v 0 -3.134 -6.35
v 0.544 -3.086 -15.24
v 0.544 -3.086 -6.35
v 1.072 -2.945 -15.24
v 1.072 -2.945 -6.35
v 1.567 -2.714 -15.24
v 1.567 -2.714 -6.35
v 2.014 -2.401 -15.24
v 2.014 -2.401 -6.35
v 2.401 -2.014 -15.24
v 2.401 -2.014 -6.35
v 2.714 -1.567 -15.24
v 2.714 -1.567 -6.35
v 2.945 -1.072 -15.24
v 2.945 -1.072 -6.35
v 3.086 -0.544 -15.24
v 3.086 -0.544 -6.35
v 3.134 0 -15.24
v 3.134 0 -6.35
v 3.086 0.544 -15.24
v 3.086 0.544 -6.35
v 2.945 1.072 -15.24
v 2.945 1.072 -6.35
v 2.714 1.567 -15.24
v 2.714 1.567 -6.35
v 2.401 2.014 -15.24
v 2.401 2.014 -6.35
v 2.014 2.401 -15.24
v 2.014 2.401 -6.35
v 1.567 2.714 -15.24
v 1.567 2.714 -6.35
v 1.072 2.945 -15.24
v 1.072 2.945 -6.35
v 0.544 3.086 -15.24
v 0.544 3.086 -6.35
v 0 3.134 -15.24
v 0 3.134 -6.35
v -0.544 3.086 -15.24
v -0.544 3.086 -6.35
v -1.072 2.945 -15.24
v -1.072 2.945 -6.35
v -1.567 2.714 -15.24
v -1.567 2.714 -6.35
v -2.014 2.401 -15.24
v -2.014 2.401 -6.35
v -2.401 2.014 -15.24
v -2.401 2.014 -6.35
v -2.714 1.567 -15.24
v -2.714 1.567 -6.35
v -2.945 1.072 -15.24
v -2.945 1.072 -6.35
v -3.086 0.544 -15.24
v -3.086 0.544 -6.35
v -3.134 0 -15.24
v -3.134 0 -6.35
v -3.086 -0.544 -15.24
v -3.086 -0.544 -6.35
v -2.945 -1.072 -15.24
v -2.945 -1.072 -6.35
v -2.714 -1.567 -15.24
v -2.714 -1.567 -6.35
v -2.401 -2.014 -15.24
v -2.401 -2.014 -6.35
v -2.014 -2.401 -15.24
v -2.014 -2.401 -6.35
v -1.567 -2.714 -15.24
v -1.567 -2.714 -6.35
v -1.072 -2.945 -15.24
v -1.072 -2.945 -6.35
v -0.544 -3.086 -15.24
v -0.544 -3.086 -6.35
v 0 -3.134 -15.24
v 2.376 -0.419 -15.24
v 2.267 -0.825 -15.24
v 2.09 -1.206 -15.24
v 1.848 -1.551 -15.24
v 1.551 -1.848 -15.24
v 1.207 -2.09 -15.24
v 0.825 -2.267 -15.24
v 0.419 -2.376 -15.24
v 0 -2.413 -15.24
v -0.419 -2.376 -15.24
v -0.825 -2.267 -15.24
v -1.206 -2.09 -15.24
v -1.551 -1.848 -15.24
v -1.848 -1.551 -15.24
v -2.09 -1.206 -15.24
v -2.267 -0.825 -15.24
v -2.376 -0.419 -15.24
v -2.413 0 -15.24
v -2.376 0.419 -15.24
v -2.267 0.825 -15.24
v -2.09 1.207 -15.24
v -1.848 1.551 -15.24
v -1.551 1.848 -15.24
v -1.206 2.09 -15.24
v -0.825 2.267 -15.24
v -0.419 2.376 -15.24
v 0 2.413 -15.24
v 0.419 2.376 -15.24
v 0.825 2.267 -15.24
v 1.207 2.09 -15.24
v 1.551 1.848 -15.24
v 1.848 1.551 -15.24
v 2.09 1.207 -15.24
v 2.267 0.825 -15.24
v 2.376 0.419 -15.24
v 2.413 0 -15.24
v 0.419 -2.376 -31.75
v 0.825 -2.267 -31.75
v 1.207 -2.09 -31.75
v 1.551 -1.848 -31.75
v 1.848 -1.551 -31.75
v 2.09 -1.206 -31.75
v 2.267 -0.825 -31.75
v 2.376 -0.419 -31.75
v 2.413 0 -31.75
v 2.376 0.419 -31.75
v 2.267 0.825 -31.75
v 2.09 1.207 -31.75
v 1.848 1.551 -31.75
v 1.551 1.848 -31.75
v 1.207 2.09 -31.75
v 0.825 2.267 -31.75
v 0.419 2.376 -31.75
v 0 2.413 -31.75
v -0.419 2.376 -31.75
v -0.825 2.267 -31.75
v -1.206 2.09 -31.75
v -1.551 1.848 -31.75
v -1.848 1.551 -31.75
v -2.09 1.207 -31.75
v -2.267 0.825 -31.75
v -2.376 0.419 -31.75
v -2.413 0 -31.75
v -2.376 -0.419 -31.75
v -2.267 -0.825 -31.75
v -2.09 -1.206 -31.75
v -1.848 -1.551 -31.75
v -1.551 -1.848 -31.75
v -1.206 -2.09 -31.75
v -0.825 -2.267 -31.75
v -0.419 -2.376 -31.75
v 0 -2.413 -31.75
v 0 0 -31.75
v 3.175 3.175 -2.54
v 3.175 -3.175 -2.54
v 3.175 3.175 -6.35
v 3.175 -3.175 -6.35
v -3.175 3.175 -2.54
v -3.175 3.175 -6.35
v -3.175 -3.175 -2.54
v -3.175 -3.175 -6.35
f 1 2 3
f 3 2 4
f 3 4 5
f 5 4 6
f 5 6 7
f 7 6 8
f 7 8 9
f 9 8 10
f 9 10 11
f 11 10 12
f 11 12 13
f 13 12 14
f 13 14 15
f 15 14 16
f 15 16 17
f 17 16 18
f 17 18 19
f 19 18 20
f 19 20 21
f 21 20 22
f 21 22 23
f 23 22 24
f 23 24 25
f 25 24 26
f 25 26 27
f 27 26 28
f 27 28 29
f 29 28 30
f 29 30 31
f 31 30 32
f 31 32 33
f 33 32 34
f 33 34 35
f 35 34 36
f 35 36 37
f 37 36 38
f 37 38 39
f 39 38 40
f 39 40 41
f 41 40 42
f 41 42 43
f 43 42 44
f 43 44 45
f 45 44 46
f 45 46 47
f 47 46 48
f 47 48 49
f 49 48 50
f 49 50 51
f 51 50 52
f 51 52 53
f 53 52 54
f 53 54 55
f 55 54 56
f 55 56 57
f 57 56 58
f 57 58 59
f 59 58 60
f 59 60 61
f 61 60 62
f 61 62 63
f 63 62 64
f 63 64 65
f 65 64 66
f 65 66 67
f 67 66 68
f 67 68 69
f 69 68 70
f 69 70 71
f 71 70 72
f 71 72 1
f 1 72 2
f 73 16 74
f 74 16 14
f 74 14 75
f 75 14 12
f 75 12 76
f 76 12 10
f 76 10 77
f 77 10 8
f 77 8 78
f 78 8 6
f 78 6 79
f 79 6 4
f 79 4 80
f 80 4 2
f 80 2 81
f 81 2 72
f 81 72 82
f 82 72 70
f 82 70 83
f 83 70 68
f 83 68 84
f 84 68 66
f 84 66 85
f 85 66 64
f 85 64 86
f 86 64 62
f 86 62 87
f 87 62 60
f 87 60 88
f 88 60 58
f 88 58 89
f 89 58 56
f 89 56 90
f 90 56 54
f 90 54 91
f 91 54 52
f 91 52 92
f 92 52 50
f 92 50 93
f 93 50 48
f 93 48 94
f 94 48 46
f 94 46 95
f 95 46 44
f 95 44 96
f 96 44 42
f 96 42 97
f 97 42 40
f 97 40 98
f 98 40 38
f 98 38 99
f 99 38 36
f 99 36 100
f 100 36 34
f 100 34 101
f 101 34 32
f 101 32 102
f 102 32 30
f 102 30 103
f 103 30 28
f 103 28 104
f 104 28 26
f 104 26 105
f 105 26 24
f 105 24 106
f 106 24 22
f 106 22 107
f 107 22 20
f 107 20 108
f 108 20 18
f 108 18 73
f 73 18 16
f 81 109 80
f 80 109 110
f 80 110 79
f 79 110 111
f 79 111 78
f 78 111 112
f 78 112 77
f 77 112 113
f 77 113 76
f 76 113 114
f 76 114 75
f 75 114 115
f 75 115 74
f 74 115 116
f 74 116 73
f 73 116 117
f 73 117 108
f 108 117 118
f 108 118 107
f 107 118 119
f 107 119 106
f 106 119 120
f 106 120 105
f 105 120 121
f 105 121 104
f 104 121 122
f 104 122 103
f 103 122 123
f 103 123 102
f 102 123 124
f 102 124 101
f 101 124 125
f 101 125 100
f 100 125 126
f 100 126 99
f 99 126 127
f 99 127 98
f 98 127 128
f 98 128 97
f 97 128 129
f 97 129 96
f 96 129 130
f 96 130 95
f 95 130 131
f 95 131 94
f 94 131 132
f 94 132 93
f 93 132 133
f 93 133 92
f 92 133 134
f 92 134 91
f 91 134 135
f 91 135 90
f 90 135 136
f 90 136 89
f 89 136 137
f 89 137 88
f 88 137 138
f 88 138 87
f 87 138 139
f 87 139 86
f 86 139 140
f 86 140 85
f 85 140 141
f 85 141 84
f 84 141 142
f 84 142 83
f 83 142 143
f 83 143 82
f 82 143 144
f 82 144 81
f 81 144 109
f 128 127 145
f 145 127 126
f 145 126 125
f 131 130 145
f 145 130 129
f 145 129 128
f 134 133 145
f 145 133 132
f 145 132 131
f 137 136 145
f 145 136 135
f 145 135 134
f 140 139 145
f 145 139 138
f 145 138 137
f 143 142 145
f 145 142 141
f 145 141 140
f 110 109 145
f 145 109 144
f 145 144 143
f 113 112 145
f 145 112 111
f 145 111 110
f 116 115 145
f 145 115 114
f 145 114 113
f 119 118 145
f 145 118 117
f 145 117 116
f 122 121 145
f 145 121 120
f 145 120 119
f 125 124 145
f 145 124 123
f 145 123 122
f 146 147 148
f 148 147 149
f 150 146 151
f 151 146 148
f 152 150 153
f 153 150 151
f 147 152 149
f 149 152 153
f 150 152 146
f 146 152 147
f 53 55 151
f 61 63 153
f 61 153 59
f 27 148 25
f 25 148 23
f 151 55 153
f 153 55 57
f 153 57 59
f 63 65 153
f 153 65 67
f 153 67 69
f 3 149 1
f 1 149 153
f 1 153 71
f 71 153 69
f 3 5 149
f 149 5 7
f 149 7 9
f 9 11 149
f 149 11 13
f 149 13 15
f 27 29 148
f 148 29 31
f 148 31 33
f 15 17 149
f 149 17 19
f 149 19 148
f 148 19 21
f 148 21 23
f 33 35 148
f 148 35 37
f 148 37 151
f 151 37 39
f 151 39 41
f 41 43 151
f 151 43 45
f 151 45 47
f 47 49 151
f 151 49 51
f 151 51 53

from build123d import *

# Parameters (mm, degrees)
SKETCH6_R           = 3.687499751
CUT_EXTRUDE3_DEPTH  = 29.1338
SKETCH7_R           = 2.413
BOSS_EXTRUDE1_DEPTH = 16.51
SKETCH9_R           = 4.699
CUT_EXTRUDE4_DEPTH  = 6.35
SKETCH10_W          = 6.35
SKETCH10_H          = 6.35
BOSS_EXTRUDE3_DEPTH = 3.81


with BuildPart() as part:
    # Sketch1 → Revolve1 (revolve)
    with BuildSketch(Plane(origin=(0, 0, 0), x_dir=(0, 0, -1), z_dir=(1, 0, 0))):
        Polygon((4.892085627, 0), (44.3738, 0), (44.3738, 2.159), (43.409235, 3.123565), (25.3238, 3.123565), (18.9738, 3.133725), (6.4516, 3.133725), (6.2738, 3.133725), (6.2738, 3.311525), (6.2738, 4.445), (6.2738, 4.699), (6.0198, 4.699), (0.635, 4.699), (0, 4.699), (0, 4.064), (0, 3.19405), (0, 0), align=None)
    revolve(axis=Axis((0, 0, -4.892085627), (0, 0, -1)))

    # Sketch6 → Cut-Extrude3 (cut)
    with BuildSketch(Plane(origin=(0, 0, -44.3738), x_dir=(-1, 0, 0), z_dir=(0, 0, -1))):
        Circle(SKETCH6_R)
    extrude(amount=-CUT_EXTRUDE3_DEPTH, mode=Mode.SUBTRACT)

    # Sketch7 → Boss-Extrude1 (add)
    with BuildSketch(Plane(origin=(0, 0, -15.24), x_dir=(-1, 0, 0), z_dir=(0, 0, -1))):
        Circle(SKETCH7_R)
    extrude(amount=BOSS_EXTRUDE1_DEPTH)

    # Sketch9 → Cut-Extrude4 (cut)
    with BuildSketch(Plane.XY):
        Circle(SKETCH9_R)
    extrude(amount=-CUT_EXTRUDE4_DEPTH, mode=Mode.SUBTRACT)

    # Sketch10 → Boss-Extrude3 (add)
    with BuildSketch(Plane.XY.offset(-6.35)):
        Rectangle(SKETCH10_W, SKETCH10_H)
    extrude(amount=BOSS_EXTRUDE3_DEPTH)


solid = part.part
